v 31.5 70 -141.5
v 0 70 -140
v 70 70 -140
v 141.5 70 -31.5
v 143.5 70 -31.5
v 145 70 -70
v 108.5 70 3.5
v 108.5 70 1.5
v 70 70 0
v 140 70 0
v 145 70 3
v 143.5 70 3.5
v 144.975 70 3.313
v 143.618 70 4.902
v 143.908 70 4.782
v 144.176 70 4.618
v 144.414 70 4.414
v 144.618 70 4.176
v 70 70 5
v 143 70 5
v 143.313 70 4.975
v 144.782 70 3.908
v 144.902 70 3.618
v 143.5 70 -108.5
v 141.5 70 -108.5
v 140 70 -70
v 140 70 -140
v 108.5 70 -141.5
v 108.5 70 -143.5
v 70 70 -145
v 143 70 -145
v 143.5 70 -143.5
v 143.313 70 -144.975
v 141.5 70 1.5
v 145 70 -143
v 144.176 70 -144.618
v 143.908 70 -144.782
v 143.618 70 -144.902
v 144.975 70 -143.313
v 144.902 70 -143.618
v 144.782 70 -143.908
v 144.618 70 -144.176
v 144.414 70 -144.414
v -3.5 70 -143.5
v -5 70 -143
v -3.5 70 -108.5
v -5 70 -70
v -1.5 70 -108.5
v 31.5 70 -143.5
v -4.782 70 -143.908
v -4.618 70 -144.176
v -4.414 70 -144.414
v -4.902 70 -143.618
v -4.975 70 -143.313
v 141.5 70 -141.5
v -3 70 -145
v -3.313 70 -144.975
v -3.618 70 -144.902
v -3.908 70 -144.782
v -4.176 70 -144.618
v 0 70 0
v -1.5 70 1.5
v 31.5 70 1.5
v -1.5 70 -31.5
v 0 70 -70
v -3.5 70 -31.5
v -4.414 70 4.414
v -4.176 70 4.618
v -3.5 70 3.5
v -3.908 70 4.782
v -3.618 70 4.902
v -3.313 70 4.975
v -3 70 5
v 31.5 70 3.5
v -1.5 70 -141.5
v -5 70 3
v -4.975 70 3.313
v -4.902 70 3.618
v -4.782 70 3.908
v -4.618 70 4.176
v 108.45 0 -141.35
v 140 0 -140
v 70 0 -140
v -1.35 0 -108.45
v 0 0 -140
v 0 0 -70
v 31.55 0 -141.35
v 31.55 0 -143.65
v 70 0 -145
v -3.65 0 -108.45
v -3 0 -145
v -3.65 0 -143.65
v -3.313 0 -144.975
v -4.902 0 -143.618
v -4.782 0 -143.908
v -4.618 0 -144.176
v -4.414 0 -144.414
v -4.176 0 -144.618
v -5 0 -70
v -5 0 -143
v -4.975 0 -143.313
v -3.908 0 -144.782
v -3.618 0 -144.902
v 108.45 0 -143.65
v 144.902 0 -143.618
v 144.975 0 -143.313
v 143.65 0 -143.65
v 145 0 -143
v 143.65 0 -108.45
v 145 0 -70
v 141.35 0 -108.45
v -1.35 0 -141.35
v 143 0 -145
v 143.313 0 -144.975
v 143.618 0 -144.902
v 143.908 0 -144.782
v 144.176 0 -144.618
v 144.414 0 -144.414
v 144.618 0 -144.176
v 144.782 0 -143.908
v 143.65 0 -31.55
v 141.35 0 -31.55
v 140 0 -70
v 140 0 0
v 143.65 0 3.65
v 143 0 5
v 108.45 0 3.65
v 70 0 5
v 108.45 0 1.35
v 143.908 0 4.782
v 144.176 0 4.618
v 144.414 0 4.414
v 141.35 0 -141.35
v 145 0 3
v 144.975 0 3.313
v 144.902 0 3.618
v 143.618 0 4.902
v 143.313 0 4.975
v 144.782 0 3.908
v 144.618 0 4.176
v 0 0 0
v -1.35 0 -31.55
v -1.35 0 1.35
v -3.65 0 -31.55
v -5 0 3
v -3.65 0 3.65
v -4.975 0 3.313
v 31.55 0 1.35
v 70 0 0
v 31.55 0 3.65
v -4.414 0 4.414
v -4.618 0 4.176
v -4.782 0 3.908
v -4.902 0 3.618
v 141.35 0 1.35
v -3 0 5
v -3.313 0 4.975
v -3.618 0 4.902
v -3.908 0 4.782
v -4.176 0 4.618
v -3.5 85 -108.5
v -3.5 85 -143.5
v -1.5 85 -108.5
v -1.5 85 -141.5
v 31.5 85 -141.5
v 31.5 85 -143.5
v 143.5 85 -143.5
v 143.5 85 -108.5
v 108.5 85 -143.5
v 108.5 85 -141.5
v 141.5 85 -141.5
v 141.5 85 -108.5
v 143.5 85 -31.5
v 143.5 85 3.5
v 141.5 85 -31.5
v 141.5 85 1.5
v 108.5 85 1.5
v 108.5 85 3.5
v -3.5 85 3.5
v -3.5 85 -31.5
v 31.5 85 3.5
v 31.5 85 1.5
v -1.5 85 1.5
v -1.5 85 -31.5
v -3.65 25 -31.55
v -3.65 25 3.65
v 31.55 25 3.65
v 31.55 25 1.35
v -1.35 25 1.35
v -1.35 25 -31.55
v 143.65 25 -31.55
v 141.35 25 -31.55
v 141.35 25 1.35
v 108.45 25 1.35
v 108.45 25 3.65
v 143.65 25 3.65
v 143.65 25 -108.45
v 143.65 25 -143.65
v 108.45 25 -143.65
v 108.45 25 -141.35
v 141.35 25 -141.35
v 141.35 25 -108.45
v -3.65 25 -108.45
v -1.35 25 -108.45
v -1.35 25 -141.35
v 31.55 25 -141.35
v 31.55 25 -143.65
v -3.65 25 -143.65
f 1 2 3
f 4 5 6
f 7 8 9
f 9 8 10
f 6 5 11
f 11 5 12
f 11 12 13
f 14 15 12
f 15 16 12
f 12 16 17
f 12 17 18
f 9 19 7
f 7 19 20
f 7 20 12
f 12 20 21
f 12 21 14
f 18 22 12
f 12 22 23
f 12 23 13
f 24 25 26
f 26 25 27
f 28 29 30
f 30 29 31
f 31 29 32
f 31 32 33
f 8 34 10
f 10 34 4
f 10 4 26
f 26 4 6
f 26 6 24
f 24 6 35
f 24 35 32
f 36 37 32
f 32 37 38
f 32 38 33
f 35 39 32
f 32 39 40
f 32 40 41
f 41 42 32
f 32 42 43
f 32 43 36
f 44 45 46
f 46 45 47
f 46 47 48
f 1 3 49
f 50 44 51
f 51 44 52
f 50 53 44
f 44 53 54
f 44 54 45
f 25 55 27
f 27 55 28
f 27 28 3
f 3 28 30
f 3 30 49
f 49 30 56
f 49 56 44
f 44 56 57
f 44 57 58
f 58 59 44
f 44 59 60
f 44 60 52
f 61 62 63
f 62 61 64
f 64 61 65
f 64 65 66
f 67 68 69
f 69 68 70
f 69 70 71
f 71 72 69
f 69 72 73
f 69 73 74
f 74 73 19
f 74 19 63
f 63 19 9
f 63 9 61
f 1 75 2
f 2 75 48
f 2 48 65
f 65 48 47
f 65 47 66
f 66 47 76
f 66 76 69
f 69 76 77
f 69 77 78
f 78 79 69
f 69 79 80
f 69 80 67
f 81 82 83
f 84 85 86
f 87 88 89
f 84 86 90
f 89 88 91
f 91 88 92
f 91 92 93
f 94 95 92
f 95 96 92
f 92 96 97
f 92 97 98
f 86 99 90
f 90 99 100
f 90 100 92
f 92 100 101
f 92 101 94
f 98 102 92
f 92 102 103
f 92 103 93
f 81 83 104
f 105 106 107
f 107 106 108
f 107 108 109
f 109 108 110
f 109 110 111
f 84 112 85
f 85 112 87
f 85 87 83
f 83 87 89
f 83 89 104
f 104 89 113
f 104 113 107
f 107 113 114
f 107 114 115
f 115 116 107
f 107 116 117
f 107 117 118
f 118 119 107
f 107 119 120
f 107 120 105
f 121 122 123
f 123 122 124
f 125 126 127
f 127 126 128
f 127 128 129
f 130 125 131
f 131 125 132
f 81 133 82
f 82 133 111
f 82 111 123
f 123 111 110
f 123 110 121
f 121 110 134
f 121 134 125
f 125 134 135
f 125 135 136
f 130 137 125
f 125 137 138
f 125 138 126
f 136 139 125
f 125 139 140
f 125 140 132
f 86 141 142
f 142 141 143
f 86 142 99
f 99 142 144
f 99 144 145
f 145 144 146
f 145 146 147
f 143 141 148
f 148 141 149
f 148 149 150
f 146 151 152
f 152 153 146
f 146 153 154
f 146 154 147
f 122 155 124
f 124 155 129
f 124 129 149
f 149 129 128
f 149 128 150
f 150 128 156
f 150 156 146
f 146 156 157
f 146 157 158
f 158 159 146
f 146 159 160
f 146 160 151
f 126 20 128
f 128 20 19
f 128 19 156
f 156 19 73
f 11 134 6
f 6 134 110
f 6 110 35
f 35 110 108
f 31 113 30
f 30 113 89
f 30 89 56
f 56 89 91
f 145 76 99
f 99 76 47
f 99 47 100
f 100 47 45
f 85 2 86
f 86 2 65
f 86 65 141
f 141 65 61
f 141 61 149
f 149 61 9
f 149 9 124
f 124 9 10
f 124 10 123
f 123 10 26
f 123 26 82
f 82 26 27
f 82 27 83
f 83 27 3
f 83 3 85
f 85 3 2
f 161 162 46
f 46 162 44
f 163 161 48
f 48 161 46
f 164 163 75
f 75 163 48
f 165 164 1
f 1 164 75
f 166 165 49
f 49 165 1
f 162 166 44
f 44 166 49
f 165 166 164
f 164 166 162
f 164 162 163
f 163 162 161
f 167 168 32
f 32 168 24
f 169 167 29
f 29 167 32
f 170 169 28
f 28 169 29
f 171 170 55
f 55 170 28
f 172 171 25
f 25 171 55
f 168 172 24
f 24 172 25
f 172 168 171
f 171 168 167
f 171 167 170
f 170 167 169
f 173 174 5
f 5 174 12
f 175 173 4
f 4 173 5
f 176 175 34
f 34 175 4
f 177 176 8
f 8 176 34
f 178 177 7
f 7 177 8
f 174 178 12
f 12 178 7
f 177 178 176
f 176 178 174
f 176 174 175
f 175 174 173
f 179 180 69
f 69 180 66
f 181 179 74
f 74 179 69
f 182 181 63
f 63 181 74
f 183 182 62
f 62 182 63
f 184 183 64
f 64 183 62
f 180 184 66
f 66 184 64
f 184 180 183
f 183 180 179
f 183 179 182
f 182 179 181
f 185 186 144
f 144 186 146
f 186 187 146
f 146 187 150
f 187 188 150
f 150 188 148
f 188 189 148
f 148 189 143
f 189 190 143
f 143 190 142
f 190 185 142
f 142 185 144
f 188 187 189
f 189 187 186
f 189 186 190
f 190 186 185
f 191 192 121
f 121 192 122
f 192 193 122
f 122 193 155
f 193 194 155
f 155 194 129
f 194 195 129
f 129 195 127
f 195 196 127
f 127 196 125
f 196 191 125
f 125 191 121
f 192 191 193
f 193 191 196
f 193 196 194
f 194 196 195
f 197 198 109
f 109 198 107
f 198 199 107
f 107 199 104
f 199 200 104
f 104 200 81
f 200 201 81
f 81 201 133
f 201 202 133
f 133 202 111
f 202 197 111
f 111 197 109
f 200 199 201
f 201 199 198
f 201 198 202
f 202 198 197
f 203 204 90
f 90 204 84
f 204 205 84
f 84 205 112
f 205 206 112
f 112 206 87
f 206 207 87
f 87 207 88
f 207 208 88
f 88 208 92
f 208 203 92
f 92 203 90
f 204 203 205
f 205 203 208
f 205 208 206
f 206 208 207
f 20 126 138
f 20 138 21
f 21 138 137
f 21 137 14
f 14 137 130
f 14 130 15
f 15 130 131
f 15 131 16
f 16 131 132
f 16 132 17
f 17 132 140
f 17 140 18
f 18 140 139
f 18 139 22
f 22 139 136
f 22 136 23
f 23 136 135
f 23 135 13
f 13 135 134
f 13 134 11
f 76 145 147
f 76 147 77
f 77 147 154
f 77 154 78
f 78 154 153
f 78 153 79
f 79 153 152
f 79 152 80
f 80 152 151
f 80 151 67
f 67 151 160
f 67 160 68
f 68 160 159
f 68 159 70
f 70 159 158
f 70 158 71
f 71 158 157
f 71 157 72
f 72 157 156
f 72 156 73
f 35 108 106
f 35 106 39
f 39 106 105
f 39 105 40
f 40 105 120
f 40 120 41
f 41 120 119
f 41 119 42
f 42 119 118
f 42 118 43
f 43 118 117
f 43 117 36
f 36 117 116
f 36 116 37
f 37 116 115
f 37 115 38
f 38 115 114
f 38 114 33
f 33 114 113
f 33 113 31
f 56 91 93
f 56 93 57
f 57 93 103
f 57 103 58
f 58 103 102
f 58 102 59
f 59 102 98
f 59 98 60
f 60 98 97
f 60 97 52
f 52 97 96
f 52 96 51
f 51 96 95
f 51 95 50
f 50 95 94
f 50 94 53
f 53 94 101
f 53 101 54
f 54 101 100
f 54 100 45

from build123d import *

# Parameters (mm, degrees)
SKETCH1_W           = 150
SKETCH1_H           = 150
SKETCH1_W_2         = 140
SKETCH1_H_2         = 140
BOSS_EXTRUDE1_DEPTH = 70
BOSS_EXTRUDE2_DEPTH = 15
CUT_EXTRUDE1_DEPTH  = 25
FILLET1_R           = 2


with BuildPart() as part:
    # Sketch1 → Boss-Extrude1 (new body)
    with BuildSketch(Plane(origin=(0, 0, 0), x_dir=(1, 0, 0), z_dir=(0, 1, 0))):
        with Locations((70, 70)):
            Rectangle(SKETCH1_W, SKETCH1_H)
        with Locations((70, 70)):
            Rectangle(SKETCH1_W_2, SKETCH1_H_2, mode=Mode.SUBTRACT)
    extrude(amount=BOSS_EXTRUDE1_DEPTH)

    # Sketch2 → Boss-Extrude2 (add)
    with BuildSketch(Plane(origin=(0, 70, 0), x_dir=(1, 0, 0), z_dir=(0, 1, 0))):
        Polygon((-3.5, 108.5), (-3.5, 143.5), (31.5, 143.5), (31.5, 141.5), (-1.5, 141.5), (-1.5, 108.5), align=None)
        Polygon((143.5, 108.5), (143.5, 143.5), (108.5, 143.5), (108.5, 141.5), (141.5, 141.5), (141.5, 108.5), align=None)
        Polygon((143.5, 31.5), (143.5, -3.5), (108.5, -3.5), (108.5, -1.5), (141.5, -1.5), (141.5, 31.5), align=None)
        Polygon((-3.5, 31.5), (-3.5, -3.5), (31.5, -3.5), (31.5, -1.5), (-1.5, -1.5), (-1.5, 31.5), align=None)
    extrude(amount=BOSS_EXTRUDE2_DEPTH)

    # Sketch3 → Cut-Extrude1 (cut)
    with BuildSketch(Plane.XZ):
        Polygon((-3.65, 3.65), (31.55, 3.65), (31.55, 1.35), (-1.35, 1.35), (-1.35, -31.55), (-3.65, -31.55), align=None)
        Polygon((143.65, -31.55), (143.65, 3.65), (108.45, 3.65), (108.45, 1.35), (141.35, 1.35), (141.35, -31.55), align=None)
        Polygon((143.65, -143.65), (108.45, -143.65), (108.45, -141.35), (141.35, -141.35), (141.35, -108.45), (143.65, -108.45), align=None)
        Polygon((-3.65, -108.45), (-3.65, -143.65), (31.55, -143.65), (31.55, -141.35), (-1.35, -141.35), (-1.35, -108.45), align=None)
    extrude(amount=-CUT_EXTRUDE1_DEPTH, mode=Mode.SUBTRACT)

    # Fillet1
    fillet1_edges = [part.edges().sort_by_distance(p)[0] for p in [
        (-5, 35, 5),
        (-5, 35, -145),
        (145, 35, -145),
        (145, 35, 5),
    ]]
    fillet(fillet1_edges, radius=FILLET1_R)


solid = part.part
